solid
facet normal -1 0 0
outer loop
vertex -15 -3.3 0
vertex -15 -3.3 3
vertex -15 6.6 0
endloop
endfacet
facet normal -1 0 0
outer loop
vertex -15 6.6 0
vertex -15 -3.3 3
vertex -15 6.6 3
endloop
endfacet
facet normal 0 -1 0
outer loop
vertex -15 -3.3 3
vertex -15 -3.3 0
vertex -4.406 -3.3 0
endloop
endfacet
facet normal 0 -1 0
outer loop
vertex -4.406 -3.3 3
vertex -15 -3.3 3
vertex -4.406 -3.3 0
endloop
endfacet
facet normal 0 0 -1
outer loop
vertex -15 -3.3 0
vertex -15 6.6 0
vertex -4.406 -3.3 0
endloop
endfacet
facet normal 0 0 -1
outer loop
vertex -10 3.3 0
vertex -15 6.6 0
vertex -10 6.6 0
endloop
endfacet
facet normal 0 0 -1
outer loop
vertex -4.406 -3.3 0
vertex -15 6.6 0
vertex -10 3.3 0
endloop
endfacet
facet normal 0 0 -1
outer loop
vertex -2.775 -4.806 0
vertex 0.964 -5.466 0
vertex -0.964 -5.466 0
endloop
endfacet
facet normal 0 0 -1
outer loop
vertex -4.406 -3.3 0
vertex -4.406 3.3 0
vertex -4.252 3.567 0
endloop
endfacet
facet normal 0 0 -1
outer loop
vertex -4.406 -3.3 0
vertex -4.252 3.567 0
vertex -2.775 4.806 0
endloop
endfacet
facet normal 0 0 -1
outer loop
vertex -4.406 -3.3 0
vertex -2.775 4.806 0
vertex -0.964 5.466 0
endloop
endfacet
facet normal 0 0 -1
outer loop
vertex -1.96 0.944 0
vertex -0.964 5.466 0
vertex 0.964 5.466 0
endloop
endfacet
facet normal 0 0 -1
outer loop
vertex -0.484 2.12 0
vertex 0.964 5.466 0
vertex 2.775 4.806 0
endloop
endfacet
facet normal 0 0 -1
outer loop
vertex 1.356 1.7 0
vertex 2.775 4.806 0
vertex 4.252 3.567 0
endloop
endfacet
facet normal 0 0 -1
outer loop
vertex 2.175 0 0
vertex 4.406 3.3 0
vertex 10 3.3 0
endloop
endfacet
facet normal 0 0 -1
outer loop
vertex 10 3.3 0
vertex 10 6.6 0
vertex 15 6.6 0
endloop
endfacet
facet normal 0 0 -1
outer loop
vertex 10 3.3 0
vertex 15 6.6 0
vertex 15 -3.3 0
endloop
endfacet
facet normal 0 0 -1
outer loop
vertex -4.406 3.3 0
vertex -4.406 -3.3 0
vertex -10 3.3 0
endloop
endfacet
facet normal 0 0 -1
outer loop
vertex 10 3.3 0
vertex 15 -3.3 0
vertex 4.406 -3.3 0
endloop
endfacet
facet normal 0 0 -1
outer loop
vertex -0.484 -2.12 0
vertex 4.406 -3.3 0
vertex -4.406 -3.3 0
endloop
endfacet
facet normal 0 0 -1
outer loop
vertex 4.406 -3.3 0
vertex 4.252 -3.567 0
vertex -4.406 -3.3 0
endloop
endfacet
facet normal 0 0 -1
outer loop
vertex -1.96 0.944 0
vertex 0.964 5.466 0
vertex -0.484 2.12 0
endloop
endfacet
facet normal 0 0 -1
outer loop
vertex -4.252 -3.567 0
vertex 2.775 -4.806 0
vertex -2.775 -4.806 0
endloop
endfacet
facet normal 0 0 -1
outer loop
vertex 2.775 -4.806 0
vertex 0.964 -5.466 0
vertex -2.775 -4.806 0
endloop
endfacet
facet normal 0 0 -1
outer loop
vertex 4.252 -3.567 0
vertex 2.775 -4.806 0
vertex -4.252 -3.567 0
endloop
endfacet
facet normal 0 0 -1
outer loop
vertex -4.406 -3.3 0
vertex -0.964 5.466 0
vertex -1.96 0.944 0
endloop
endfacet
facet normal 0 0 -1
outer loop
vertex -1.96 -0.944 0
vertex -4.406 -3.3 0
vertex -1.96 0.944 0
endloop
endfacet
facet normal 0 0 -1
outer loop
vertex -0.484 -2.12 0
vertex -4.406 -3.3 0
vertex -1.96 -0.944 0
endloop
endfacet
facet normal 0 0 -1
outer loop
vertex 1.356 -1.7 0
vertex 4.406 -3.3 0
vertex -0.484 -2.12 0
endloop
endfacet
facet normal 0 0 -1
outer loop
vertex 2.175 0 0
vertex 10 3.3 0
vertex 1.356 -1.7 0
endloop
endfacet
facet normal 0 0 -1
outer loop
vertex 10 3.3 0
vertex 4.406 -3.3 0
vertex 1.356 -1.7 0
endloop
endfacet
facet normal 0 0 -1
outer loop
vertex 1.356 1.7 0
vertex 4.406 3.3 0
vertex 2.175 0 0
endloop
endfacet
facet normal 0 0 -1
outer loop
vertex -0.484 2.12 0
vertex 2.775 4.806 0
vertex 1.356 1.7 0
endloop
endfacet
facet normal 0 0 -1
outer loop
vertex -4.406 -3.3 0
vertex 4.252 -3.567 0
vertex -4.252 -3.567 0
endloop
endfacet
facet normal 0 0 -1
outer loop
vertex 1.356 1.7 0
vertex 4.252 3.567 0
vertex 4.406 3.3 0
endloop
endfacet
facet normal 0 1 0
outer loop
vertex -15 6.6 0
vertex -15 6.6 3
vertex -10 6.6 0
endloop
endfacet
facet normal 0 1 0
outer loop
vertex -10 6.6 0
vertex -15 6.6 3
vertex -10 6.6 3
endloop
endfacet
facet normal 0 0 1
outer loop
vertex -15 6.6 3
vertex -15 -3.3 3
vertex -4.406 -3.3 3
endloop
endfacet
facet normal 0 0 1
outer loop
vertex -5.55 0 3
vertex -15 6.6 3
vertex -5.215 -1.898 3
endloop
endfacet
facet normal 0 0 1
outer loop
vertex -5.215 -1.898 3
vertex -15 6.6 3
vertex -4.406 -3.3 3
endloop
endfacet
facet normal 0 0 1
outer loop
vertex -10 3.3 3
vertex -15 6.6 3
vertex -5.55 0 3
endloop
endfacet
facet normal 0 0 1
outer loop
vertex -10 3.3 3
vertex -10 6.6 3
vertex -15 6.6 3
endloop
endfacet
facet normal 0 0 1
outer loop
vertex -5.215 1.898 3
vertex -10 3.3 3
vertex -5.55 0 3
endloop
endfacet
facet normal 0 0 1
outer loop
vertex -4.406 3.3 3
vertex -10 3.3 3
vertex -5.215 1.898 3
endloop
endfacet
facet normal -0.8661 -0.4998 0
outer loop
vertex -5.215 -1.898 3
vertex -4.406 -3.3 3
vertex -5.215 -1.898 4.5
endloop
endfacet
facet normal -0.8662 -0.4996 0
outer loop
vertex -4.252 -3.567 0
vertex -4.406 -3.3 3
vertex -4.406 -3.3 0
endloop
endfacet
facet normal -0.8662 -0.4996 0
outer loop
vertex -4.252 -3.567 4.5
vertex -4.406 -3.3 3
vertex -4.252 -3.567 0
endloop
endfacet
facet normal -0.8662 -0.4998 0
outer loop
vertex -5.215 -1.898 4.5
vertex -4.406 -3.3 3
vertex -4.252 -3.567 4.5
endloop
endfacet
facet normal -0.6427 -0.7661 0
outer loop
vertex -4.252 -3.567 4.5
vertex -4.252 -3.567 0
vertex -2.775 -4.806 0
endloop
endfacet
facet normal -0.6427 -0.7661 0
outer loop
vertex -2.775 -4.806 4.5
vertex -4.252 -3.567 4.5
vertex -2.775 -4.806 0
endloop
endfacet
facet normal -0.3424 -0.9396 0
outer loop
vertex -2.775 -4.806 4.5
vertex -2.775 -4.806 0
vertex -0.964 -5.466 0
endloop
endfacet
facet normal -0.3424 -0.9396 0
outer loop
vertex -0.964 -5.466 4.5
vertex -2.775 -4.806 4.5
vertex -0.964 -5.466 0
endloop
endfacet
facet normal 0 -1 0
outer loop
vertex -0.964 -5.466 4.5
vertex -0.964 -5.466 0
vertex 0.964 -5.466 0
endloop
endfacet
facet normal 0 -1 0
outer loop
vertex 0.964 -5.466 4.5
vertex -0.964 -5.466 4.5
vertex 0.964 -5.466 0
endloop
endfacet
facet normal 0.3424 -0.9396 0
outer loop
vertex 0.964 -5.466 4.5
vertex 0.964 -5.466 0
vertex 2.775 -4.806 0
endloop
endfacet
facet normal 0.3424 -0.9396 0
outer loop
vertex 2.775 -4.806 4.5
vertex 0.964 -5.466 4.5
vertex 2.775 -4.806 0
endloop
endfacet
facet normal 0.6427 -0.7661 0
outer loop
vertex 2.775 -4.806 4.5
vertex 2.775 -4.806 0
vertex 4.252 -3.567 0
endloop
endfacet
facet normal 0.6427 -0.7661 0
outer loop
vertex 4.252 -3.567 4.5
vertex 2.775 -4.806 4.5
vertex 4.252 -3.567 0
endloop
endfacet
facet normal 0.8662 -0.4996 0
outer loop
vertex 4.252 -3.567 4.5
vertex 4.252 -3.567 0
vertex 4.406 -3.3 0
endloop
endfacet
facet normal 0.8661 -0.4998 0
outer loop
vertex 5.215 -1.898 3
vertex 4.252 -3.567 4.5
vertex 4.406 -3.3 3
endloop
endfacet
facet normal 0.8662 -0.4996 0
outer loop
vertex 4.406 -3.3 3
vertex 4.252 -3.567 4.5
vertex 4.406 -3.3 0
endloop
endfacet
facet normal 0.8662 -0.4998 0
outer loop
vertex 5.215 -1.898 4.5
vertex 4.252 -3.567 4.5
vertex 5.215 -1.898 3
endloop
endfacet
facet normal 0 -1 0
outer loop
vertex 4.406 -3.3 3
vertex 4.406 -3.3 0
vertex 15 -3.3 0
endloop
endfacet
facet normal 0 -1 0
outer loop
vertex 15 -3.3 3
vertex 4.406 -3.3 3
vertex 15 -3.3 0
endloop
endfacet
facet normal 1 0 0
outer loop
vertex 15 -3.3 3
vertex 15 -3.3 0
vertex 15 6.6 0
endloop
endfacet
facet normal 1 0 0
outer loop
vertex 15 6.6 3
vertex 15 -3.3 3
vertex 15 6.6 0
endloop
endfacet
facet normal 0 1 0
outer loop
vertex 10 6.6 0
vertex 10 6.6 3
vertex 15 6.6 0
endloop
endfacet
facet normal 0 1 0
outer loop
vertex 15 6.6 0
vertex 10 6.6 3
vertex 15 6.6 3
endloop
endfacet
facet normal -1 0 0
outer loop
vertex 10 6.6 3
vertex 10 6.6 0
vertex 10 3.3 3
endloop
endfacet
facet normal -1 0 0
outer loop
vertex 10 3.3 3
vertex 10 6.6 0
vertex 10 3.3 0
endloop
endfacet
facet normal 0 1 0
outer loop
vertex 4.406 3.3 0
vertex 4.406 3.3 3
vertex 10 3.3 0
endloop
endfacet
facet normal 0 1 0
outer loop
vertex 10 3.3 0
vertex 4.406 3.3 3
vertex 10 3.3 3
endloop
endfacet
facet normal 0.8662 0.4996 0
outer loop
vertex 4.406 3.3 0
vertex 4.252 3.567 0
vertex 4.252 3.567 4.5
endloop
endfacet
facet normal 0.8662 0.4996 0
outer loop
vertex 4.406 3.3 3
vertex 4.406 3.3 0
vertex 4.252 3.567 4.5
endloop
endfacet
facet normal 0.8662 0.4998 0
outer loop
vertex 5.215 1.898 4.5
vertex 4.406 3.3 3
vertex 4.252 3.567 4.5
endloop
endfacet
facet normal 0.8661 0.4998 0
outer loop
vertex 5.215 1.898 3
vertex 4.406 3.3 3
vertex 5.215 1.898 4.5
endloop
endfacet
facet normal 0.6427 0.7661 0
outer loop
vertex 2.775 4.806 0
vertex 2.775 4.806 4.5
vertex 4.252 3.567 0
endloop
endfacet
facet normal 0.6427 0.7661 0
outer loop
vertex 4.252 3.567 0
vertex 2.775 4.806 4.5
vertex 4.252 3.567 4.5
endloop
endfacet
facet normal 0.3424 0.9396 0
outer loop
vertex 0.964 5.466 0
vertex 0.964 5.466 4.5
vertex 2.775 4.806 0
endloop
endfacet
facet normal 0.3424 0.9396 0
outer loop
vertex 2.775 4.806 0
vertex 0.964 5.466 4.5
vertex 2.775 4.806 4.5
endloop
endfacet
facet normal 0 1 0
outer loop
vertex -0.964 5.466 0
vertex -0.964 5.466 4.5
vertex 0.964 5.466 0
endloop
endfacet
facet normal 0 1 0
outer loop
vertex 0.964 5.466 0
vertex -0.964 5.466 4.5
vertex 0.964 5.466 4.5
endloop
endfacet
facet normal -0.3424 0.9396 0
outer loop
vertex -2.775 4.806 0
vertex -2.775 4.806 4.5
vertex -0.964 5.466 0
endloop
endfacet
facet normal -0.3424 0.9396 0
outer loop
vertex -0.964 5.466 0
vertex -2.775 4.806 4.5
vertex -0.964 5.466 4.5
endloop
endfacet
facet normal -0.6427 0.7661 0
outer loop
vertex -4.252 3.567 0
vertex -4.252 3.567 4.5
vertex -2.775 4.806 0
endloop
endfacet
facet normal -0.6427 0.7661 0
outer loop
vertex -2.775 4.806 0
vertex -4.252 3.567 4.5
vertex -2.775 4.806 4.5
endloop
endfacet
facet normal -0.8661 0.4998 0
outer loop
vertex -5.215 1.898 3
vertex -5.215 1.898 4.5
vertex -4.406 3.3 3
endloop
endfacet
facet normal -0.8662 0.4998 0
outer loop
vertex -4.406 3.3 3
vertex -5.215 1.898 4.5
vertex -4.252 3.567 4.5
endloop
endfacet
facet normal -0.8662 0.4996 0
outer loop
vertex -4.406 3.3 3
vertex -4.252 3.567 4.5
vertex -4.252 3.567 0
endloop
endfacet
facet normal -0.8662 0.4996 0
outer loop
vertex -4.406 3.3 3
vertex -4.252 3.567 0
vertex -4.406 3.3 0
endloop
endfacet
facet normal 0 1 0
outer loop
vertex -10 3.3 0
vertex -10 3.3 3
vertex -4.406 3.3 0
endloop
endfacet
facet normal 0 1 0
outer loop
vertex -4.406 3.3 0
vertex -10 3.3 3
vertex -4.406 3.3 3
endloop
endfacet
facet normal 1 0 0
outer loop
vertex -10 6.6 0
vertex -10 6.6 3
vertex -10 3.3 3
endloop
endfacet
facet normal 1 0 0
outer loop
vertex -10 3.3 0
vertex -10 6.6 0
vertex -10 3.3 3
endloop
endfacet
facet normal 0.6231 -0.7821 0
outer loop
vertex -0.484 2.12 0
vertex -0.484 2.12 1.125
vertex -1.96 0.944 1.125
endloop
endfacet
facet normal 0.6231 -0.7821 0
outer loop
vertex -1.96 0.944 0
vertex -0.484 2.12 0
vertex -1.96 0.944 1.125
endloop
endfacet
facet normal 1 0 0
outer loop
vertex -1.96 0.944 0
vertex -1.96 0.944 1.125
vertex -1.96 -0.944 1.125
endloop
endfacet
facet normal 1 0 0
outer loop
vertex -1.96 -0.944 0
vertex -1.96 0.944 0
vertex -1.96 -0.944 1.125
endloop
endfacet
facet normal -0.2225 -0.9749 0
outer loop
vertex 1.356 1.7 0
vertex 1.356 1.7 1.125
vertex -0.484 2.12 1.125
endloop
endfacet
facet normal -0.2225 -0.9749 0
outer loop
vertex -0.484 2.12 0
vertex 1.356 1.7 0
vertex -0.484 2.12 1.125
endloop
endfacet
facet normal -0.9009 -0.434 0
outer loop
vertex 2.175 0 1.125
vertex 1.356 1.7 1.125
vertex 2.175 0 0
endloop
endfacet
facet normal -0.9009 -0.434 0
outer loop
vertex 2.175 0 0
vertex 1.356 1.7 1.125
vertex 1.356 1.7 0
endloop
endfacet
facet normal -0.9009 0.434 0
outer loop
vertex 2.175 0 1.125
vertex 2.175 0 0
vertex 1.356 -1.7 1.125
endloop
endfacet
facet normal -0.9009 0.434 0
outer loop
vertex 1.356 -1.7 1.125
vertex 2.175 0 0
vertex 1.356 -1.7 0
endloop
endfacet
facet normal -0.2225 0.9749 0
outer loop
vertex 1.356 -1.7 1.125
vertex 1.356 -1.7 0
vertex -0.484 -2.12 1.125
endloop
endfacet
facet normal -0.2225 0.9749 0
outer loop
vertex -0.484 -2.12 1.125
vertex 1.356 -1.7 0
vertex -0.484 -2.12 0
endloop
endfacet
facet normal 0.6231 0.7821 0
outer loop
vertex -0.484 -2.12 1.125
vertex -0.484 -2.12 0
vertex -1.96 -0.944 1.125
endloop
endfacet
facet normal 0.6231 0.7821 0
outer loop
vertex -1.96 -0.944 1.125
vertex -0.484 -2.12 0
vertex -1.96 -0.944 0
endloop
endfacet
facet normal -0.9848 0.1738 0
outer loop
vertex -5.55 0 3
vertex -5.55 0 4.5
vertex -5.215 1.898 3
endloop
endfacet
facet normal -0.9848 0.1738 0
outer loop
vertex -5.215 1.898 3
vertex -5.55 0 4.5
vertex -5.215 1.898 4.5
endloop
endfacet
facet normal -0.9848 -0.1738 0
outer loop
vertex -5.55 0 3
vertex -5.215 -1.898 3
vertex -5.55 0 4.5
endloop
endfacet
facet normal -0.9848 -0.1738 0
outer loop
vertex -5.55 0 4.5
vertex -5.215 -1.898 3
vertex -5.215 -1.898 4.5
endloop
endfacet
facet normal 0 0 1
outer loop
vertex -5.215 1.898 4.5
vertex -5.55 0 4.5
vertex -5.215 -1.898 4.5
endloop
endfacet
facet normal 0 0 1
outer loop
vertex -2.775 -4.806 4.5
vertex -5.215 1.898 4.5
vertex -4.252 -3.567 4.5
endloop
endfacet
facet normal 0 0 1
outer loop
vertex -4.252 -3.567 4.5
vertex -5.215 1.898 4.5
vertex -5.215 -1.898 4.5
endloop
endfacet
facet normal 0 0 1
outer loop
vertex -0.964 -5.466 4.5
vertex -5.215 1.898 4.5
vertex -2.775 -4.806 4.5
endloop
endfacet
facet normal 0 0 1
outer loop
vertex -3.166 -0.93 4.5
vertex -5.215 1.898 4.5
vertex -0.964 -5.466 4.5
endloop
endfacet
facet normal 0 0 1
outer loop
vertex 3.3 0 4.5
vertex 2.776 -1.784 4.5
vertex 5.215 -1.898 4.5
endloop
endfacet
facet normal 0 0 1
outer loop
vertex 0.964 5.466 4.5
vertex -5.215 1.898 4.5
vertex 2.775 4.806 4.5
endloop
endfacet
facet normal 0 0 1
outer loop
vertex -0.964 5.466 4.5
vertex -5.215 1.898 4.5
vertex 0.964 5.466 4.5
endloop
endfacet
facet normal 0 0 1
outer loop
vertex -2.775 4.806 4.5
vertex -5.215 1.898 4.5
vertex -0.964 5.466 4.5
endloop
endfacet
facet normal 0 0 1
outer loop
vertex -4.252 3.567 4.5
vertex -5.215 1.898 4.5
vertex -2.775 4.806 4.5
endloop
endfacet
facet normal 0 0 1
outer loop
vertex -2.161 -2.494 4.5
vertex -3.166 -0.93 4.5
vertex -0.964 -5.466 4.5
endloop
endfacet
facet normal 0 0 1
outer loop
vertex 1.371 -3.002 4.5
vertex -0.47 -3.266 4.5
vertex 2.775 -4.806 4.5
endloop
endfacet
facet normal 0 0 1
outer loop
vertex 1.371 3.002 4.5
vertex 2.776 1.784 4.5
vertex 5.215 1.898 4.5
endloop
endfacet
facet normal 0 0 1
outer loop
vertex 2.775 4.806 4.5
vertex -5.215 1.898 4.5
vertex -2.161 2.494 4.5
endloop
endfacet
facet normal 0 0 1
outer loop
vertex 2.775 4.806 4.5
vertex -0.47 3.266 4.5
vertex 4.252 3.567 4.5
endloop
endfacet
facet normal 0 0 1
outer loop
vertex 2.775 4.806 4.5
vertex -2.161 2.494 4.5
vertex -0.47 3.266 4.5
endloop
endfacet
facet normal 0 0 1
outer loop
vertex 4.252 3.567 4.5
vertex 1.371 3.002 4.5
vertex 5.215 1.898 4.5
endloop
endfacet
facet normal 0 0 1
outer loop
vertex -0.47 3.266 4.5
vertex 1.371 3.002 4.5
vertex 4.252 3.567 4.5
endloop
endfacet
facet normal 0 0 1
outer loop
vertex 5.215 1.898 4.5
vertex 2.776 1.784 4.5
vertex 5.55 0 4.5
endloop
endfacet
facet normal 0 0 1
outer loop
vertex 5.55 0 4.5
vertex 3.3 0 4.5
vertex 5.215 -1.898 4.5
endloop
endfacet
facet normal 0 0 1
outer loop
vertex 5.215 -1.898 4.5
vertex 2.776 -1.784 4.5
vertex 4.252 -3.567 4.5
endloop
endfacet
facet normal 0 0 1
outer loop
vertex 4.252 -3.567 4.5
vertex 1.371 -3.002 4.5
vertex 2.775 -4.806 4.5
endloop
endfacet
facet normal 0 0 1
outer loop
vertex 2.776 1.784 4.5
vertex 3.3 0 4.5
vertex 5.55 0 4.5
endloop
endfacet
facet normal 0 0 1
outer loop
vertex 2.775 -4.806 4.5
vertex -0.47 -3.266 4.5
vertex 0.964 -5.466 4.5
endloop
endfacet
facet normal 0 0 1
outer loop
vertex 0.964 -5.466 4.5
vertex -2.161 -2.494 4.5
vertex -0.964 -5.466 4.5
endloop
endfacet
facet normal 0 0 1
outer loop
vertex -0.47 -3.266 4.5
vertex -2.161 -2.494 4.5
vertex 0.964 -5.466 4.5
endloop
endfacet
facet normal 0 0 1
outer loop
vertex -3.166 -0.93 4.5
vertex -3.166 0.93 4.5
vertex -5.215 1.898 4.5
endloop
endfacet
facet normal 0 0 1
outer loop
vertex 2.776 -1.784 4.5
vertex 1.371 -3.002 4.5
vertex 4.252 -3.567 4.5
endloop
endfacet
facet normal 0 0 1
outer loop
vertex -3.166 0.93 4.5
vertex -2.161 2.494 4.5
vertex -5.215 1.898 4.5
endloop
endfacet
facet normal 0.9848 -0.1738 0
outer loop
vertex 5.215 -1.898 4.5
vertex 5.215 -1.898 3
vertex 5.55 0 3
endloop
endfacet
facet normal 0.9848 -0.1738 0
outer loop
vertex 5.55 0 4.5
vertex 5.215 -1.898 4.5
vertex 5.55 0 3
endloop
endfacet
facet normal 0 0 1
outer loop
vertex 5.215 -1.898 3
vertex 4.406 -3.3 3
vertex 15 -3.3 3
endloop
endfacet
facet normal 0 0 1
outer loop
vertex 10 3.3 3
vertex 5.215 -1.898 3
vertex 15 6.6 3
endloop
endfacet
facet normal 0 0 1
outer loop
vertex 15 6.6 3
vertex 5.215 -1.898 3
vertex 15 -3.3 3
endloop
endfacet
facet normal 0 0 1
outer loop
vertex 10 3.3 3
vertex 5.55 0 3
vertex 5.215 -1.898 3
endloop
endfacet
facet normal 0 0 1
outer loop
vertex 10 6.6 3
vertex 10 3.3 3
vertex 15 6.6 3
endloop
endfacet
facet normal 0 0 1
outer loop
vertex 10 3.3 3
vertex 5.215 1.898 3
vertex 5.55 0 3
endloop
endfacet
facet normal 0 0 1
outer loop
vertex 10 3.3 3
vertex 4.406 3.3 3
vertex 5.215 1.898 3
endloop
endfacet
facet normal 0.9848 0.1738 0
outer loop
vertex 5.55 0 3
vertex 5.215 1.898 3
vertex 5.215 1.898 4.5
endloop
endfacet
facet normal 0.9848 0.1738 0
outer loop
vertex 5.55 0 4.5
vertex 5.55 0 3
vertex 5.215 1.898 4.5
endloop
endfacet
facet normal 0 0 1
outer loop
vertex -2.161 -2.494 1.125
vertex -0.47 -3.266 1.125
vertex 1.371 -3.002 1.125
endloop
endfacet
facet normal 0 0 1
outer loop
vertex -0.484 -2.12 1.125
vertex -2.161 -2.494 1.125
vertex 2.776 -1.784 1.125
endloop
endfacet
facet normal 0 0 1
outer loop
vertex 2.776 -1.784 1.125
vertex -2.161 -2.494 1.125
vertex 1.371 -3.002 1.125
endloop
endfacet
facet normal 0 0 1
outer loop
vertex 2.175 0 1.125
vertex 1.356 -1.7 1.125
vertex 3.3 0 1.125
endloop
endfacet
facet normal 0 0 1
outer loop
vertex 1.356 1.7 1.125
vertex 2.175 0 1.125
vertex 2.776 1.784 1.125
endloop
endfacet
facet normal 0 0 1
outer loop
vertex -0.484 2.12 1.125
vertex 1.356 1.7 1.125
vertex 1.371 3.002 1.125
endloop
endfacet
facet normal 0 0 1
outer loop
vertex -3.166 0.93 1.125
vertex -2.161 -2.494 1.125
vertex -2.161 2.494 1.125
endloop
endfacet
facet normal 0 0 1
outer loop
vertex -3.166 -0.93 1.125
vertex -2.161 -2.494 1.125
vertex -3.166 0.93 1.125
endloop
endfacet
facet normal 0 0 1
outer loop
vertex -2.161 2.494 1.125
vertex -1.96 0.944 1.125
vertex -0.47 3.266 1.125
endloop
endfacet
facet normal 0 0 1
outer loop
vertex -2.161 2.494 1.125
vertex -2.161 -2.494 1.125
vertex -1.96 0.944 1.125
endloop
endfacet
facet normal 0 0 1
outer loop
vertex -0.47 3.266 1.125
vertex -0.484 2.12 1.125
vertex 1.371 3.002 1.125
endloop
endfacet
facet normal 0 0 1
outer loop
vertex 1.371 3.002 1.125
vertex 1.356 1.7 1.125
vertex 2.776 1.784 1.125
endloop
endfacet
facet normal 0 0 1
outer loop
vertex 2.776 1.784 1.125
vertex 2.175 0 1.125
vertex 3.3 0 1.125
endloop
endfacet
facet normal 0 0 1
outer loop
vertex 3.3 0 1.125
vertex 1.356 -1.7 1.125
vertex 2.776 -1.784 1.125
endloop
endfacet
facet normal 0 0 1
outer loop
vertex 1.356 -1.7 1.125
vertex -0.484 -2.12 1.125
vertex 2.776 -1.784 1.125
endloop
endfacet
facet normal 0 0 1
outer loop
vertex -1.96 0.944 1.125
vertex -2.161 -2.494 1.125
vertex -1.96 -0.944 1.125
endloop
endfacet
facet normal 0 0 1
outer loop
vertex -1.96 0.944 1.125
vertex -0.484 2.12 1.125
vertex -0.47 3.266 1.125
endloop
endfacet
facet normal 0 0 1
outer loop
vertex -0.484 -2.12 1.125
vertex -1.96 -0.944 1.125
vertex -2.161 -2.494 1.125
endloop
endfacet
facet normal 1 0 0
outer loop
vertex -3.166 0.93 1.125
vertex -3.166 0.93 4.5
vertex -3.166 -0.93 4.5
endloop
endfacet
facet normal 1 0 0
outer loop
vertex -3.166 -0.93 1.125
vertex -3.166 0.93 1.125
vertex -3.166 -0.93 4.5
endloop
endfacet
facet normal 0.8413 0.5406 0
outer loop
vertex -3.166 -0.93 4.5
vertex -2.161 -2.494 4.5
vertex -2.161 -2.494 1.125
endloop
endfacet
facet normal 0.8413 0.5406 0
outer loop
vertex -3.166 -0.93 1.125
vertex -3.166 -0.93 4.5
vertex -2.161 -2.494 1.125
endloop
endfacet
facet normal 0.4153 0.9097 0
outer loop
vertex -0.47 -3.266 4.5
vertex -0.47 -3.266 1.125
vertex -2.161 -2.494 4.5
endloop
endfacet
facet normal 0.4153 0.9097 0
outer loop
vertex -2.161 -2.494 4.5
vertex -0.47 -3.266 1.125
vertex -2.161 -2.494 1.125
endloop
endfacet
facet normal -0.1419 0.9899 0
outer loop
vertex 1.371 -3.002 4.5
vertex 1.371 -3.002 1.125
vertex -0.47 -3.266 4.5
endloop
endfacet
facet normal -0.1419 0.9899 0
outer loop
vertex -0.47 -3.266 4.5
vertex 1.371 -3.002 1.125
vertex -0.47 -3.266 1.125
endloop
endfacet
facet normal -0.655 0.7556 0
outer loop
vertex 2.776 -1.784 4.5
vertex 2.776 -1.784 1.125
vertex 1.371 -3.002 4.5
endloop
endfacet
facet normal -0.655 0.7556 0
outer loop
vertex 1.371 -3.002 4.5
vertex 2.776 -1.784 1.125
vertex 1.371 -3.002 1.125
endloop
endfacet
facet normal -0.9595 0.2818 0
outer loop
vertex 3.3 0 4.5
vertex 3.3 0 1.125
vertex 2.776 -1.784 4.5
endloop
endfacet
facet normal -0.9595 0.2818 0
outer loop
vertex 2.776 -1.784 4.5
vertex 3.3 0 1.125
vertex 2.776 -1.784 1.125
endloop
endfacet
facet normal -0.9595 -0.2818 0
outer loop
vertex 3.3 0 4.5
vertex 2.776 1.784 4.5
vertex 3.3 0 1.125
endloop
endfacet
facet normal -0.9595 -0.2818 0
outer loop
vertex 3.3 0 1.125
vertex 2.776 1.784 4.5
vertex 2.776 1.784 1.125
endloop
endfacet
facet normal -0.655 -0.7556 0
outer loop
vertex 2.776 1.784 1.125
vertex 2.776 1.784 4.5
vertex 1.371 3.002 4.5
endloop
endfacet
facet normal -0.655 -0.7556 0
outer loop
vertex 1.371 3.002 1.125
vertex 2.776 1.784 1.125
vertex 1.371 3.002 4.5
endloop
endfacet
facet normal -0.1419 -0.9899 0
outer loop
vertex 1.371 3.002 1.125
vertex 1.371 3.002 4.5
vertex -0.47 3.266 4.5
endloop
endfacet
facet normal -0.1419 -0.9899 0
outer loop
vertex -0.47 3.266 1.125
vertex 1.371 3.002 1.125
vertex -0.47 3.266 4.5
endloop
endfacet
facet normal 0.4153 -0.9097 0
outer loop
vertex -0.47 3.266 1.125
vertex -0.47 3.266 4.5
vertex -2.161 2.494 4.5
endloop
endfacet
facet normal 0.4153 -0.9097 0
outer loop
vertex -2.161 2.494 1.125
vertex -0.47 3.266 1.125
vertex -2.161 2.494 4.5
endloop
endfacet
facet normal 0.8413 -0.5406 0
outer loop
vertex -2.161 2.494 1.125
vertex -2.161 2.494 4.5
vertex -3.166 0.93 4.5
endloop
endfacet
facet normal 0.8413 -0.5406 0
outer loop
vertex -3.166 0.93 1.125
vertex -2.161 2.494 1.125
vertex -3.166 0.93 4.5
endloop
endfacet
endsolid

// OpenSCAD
module cilinder()
{
	depth = 4.5;
	diameter = 3.3;
	dw = depth/2;
	dwI = dw/2;

	armDepth = depth/1.5;
	armHeigth = 20;
	armWidth = (diameter)*2;


	armGripsWidth = 5;
	armGripsHeigth = armWidth*1.5;

	difference() {
		union() {
			translate([-armHeigth/2,-armWidth/2,0])
     			cube([armHeigth,armWidth,armDepth]);
			translate([-armHeigth/2-armGripsWidth,-armWidth/2,0])
				cube([armGripsWidth,armGripsHeigth,armDepth]);
			translate([armHeigth/2,-armWidth/2,0])
				cube([armGripsWidth,armGripsHeigth,armDepth]);
			cylinder(depth,diameter+dw,diameter+dw);

			translate([-15,-armWidth/2,0])
				cube([armGripsWidth,armGripsHeigth,armDepth]);
			translate([+10,-armWidth/2,0])
				cube([armGripsWidth,armGripsHeigth,armDepth]);
		}
		translate([0,0,dwI])
			cylinder(depth,diameter,diameter);
		translate([0,0,-0.1])
		cylinder(depth,diameter-dwI,diameter-dwI);
	}
	
	
}

cilinder();
